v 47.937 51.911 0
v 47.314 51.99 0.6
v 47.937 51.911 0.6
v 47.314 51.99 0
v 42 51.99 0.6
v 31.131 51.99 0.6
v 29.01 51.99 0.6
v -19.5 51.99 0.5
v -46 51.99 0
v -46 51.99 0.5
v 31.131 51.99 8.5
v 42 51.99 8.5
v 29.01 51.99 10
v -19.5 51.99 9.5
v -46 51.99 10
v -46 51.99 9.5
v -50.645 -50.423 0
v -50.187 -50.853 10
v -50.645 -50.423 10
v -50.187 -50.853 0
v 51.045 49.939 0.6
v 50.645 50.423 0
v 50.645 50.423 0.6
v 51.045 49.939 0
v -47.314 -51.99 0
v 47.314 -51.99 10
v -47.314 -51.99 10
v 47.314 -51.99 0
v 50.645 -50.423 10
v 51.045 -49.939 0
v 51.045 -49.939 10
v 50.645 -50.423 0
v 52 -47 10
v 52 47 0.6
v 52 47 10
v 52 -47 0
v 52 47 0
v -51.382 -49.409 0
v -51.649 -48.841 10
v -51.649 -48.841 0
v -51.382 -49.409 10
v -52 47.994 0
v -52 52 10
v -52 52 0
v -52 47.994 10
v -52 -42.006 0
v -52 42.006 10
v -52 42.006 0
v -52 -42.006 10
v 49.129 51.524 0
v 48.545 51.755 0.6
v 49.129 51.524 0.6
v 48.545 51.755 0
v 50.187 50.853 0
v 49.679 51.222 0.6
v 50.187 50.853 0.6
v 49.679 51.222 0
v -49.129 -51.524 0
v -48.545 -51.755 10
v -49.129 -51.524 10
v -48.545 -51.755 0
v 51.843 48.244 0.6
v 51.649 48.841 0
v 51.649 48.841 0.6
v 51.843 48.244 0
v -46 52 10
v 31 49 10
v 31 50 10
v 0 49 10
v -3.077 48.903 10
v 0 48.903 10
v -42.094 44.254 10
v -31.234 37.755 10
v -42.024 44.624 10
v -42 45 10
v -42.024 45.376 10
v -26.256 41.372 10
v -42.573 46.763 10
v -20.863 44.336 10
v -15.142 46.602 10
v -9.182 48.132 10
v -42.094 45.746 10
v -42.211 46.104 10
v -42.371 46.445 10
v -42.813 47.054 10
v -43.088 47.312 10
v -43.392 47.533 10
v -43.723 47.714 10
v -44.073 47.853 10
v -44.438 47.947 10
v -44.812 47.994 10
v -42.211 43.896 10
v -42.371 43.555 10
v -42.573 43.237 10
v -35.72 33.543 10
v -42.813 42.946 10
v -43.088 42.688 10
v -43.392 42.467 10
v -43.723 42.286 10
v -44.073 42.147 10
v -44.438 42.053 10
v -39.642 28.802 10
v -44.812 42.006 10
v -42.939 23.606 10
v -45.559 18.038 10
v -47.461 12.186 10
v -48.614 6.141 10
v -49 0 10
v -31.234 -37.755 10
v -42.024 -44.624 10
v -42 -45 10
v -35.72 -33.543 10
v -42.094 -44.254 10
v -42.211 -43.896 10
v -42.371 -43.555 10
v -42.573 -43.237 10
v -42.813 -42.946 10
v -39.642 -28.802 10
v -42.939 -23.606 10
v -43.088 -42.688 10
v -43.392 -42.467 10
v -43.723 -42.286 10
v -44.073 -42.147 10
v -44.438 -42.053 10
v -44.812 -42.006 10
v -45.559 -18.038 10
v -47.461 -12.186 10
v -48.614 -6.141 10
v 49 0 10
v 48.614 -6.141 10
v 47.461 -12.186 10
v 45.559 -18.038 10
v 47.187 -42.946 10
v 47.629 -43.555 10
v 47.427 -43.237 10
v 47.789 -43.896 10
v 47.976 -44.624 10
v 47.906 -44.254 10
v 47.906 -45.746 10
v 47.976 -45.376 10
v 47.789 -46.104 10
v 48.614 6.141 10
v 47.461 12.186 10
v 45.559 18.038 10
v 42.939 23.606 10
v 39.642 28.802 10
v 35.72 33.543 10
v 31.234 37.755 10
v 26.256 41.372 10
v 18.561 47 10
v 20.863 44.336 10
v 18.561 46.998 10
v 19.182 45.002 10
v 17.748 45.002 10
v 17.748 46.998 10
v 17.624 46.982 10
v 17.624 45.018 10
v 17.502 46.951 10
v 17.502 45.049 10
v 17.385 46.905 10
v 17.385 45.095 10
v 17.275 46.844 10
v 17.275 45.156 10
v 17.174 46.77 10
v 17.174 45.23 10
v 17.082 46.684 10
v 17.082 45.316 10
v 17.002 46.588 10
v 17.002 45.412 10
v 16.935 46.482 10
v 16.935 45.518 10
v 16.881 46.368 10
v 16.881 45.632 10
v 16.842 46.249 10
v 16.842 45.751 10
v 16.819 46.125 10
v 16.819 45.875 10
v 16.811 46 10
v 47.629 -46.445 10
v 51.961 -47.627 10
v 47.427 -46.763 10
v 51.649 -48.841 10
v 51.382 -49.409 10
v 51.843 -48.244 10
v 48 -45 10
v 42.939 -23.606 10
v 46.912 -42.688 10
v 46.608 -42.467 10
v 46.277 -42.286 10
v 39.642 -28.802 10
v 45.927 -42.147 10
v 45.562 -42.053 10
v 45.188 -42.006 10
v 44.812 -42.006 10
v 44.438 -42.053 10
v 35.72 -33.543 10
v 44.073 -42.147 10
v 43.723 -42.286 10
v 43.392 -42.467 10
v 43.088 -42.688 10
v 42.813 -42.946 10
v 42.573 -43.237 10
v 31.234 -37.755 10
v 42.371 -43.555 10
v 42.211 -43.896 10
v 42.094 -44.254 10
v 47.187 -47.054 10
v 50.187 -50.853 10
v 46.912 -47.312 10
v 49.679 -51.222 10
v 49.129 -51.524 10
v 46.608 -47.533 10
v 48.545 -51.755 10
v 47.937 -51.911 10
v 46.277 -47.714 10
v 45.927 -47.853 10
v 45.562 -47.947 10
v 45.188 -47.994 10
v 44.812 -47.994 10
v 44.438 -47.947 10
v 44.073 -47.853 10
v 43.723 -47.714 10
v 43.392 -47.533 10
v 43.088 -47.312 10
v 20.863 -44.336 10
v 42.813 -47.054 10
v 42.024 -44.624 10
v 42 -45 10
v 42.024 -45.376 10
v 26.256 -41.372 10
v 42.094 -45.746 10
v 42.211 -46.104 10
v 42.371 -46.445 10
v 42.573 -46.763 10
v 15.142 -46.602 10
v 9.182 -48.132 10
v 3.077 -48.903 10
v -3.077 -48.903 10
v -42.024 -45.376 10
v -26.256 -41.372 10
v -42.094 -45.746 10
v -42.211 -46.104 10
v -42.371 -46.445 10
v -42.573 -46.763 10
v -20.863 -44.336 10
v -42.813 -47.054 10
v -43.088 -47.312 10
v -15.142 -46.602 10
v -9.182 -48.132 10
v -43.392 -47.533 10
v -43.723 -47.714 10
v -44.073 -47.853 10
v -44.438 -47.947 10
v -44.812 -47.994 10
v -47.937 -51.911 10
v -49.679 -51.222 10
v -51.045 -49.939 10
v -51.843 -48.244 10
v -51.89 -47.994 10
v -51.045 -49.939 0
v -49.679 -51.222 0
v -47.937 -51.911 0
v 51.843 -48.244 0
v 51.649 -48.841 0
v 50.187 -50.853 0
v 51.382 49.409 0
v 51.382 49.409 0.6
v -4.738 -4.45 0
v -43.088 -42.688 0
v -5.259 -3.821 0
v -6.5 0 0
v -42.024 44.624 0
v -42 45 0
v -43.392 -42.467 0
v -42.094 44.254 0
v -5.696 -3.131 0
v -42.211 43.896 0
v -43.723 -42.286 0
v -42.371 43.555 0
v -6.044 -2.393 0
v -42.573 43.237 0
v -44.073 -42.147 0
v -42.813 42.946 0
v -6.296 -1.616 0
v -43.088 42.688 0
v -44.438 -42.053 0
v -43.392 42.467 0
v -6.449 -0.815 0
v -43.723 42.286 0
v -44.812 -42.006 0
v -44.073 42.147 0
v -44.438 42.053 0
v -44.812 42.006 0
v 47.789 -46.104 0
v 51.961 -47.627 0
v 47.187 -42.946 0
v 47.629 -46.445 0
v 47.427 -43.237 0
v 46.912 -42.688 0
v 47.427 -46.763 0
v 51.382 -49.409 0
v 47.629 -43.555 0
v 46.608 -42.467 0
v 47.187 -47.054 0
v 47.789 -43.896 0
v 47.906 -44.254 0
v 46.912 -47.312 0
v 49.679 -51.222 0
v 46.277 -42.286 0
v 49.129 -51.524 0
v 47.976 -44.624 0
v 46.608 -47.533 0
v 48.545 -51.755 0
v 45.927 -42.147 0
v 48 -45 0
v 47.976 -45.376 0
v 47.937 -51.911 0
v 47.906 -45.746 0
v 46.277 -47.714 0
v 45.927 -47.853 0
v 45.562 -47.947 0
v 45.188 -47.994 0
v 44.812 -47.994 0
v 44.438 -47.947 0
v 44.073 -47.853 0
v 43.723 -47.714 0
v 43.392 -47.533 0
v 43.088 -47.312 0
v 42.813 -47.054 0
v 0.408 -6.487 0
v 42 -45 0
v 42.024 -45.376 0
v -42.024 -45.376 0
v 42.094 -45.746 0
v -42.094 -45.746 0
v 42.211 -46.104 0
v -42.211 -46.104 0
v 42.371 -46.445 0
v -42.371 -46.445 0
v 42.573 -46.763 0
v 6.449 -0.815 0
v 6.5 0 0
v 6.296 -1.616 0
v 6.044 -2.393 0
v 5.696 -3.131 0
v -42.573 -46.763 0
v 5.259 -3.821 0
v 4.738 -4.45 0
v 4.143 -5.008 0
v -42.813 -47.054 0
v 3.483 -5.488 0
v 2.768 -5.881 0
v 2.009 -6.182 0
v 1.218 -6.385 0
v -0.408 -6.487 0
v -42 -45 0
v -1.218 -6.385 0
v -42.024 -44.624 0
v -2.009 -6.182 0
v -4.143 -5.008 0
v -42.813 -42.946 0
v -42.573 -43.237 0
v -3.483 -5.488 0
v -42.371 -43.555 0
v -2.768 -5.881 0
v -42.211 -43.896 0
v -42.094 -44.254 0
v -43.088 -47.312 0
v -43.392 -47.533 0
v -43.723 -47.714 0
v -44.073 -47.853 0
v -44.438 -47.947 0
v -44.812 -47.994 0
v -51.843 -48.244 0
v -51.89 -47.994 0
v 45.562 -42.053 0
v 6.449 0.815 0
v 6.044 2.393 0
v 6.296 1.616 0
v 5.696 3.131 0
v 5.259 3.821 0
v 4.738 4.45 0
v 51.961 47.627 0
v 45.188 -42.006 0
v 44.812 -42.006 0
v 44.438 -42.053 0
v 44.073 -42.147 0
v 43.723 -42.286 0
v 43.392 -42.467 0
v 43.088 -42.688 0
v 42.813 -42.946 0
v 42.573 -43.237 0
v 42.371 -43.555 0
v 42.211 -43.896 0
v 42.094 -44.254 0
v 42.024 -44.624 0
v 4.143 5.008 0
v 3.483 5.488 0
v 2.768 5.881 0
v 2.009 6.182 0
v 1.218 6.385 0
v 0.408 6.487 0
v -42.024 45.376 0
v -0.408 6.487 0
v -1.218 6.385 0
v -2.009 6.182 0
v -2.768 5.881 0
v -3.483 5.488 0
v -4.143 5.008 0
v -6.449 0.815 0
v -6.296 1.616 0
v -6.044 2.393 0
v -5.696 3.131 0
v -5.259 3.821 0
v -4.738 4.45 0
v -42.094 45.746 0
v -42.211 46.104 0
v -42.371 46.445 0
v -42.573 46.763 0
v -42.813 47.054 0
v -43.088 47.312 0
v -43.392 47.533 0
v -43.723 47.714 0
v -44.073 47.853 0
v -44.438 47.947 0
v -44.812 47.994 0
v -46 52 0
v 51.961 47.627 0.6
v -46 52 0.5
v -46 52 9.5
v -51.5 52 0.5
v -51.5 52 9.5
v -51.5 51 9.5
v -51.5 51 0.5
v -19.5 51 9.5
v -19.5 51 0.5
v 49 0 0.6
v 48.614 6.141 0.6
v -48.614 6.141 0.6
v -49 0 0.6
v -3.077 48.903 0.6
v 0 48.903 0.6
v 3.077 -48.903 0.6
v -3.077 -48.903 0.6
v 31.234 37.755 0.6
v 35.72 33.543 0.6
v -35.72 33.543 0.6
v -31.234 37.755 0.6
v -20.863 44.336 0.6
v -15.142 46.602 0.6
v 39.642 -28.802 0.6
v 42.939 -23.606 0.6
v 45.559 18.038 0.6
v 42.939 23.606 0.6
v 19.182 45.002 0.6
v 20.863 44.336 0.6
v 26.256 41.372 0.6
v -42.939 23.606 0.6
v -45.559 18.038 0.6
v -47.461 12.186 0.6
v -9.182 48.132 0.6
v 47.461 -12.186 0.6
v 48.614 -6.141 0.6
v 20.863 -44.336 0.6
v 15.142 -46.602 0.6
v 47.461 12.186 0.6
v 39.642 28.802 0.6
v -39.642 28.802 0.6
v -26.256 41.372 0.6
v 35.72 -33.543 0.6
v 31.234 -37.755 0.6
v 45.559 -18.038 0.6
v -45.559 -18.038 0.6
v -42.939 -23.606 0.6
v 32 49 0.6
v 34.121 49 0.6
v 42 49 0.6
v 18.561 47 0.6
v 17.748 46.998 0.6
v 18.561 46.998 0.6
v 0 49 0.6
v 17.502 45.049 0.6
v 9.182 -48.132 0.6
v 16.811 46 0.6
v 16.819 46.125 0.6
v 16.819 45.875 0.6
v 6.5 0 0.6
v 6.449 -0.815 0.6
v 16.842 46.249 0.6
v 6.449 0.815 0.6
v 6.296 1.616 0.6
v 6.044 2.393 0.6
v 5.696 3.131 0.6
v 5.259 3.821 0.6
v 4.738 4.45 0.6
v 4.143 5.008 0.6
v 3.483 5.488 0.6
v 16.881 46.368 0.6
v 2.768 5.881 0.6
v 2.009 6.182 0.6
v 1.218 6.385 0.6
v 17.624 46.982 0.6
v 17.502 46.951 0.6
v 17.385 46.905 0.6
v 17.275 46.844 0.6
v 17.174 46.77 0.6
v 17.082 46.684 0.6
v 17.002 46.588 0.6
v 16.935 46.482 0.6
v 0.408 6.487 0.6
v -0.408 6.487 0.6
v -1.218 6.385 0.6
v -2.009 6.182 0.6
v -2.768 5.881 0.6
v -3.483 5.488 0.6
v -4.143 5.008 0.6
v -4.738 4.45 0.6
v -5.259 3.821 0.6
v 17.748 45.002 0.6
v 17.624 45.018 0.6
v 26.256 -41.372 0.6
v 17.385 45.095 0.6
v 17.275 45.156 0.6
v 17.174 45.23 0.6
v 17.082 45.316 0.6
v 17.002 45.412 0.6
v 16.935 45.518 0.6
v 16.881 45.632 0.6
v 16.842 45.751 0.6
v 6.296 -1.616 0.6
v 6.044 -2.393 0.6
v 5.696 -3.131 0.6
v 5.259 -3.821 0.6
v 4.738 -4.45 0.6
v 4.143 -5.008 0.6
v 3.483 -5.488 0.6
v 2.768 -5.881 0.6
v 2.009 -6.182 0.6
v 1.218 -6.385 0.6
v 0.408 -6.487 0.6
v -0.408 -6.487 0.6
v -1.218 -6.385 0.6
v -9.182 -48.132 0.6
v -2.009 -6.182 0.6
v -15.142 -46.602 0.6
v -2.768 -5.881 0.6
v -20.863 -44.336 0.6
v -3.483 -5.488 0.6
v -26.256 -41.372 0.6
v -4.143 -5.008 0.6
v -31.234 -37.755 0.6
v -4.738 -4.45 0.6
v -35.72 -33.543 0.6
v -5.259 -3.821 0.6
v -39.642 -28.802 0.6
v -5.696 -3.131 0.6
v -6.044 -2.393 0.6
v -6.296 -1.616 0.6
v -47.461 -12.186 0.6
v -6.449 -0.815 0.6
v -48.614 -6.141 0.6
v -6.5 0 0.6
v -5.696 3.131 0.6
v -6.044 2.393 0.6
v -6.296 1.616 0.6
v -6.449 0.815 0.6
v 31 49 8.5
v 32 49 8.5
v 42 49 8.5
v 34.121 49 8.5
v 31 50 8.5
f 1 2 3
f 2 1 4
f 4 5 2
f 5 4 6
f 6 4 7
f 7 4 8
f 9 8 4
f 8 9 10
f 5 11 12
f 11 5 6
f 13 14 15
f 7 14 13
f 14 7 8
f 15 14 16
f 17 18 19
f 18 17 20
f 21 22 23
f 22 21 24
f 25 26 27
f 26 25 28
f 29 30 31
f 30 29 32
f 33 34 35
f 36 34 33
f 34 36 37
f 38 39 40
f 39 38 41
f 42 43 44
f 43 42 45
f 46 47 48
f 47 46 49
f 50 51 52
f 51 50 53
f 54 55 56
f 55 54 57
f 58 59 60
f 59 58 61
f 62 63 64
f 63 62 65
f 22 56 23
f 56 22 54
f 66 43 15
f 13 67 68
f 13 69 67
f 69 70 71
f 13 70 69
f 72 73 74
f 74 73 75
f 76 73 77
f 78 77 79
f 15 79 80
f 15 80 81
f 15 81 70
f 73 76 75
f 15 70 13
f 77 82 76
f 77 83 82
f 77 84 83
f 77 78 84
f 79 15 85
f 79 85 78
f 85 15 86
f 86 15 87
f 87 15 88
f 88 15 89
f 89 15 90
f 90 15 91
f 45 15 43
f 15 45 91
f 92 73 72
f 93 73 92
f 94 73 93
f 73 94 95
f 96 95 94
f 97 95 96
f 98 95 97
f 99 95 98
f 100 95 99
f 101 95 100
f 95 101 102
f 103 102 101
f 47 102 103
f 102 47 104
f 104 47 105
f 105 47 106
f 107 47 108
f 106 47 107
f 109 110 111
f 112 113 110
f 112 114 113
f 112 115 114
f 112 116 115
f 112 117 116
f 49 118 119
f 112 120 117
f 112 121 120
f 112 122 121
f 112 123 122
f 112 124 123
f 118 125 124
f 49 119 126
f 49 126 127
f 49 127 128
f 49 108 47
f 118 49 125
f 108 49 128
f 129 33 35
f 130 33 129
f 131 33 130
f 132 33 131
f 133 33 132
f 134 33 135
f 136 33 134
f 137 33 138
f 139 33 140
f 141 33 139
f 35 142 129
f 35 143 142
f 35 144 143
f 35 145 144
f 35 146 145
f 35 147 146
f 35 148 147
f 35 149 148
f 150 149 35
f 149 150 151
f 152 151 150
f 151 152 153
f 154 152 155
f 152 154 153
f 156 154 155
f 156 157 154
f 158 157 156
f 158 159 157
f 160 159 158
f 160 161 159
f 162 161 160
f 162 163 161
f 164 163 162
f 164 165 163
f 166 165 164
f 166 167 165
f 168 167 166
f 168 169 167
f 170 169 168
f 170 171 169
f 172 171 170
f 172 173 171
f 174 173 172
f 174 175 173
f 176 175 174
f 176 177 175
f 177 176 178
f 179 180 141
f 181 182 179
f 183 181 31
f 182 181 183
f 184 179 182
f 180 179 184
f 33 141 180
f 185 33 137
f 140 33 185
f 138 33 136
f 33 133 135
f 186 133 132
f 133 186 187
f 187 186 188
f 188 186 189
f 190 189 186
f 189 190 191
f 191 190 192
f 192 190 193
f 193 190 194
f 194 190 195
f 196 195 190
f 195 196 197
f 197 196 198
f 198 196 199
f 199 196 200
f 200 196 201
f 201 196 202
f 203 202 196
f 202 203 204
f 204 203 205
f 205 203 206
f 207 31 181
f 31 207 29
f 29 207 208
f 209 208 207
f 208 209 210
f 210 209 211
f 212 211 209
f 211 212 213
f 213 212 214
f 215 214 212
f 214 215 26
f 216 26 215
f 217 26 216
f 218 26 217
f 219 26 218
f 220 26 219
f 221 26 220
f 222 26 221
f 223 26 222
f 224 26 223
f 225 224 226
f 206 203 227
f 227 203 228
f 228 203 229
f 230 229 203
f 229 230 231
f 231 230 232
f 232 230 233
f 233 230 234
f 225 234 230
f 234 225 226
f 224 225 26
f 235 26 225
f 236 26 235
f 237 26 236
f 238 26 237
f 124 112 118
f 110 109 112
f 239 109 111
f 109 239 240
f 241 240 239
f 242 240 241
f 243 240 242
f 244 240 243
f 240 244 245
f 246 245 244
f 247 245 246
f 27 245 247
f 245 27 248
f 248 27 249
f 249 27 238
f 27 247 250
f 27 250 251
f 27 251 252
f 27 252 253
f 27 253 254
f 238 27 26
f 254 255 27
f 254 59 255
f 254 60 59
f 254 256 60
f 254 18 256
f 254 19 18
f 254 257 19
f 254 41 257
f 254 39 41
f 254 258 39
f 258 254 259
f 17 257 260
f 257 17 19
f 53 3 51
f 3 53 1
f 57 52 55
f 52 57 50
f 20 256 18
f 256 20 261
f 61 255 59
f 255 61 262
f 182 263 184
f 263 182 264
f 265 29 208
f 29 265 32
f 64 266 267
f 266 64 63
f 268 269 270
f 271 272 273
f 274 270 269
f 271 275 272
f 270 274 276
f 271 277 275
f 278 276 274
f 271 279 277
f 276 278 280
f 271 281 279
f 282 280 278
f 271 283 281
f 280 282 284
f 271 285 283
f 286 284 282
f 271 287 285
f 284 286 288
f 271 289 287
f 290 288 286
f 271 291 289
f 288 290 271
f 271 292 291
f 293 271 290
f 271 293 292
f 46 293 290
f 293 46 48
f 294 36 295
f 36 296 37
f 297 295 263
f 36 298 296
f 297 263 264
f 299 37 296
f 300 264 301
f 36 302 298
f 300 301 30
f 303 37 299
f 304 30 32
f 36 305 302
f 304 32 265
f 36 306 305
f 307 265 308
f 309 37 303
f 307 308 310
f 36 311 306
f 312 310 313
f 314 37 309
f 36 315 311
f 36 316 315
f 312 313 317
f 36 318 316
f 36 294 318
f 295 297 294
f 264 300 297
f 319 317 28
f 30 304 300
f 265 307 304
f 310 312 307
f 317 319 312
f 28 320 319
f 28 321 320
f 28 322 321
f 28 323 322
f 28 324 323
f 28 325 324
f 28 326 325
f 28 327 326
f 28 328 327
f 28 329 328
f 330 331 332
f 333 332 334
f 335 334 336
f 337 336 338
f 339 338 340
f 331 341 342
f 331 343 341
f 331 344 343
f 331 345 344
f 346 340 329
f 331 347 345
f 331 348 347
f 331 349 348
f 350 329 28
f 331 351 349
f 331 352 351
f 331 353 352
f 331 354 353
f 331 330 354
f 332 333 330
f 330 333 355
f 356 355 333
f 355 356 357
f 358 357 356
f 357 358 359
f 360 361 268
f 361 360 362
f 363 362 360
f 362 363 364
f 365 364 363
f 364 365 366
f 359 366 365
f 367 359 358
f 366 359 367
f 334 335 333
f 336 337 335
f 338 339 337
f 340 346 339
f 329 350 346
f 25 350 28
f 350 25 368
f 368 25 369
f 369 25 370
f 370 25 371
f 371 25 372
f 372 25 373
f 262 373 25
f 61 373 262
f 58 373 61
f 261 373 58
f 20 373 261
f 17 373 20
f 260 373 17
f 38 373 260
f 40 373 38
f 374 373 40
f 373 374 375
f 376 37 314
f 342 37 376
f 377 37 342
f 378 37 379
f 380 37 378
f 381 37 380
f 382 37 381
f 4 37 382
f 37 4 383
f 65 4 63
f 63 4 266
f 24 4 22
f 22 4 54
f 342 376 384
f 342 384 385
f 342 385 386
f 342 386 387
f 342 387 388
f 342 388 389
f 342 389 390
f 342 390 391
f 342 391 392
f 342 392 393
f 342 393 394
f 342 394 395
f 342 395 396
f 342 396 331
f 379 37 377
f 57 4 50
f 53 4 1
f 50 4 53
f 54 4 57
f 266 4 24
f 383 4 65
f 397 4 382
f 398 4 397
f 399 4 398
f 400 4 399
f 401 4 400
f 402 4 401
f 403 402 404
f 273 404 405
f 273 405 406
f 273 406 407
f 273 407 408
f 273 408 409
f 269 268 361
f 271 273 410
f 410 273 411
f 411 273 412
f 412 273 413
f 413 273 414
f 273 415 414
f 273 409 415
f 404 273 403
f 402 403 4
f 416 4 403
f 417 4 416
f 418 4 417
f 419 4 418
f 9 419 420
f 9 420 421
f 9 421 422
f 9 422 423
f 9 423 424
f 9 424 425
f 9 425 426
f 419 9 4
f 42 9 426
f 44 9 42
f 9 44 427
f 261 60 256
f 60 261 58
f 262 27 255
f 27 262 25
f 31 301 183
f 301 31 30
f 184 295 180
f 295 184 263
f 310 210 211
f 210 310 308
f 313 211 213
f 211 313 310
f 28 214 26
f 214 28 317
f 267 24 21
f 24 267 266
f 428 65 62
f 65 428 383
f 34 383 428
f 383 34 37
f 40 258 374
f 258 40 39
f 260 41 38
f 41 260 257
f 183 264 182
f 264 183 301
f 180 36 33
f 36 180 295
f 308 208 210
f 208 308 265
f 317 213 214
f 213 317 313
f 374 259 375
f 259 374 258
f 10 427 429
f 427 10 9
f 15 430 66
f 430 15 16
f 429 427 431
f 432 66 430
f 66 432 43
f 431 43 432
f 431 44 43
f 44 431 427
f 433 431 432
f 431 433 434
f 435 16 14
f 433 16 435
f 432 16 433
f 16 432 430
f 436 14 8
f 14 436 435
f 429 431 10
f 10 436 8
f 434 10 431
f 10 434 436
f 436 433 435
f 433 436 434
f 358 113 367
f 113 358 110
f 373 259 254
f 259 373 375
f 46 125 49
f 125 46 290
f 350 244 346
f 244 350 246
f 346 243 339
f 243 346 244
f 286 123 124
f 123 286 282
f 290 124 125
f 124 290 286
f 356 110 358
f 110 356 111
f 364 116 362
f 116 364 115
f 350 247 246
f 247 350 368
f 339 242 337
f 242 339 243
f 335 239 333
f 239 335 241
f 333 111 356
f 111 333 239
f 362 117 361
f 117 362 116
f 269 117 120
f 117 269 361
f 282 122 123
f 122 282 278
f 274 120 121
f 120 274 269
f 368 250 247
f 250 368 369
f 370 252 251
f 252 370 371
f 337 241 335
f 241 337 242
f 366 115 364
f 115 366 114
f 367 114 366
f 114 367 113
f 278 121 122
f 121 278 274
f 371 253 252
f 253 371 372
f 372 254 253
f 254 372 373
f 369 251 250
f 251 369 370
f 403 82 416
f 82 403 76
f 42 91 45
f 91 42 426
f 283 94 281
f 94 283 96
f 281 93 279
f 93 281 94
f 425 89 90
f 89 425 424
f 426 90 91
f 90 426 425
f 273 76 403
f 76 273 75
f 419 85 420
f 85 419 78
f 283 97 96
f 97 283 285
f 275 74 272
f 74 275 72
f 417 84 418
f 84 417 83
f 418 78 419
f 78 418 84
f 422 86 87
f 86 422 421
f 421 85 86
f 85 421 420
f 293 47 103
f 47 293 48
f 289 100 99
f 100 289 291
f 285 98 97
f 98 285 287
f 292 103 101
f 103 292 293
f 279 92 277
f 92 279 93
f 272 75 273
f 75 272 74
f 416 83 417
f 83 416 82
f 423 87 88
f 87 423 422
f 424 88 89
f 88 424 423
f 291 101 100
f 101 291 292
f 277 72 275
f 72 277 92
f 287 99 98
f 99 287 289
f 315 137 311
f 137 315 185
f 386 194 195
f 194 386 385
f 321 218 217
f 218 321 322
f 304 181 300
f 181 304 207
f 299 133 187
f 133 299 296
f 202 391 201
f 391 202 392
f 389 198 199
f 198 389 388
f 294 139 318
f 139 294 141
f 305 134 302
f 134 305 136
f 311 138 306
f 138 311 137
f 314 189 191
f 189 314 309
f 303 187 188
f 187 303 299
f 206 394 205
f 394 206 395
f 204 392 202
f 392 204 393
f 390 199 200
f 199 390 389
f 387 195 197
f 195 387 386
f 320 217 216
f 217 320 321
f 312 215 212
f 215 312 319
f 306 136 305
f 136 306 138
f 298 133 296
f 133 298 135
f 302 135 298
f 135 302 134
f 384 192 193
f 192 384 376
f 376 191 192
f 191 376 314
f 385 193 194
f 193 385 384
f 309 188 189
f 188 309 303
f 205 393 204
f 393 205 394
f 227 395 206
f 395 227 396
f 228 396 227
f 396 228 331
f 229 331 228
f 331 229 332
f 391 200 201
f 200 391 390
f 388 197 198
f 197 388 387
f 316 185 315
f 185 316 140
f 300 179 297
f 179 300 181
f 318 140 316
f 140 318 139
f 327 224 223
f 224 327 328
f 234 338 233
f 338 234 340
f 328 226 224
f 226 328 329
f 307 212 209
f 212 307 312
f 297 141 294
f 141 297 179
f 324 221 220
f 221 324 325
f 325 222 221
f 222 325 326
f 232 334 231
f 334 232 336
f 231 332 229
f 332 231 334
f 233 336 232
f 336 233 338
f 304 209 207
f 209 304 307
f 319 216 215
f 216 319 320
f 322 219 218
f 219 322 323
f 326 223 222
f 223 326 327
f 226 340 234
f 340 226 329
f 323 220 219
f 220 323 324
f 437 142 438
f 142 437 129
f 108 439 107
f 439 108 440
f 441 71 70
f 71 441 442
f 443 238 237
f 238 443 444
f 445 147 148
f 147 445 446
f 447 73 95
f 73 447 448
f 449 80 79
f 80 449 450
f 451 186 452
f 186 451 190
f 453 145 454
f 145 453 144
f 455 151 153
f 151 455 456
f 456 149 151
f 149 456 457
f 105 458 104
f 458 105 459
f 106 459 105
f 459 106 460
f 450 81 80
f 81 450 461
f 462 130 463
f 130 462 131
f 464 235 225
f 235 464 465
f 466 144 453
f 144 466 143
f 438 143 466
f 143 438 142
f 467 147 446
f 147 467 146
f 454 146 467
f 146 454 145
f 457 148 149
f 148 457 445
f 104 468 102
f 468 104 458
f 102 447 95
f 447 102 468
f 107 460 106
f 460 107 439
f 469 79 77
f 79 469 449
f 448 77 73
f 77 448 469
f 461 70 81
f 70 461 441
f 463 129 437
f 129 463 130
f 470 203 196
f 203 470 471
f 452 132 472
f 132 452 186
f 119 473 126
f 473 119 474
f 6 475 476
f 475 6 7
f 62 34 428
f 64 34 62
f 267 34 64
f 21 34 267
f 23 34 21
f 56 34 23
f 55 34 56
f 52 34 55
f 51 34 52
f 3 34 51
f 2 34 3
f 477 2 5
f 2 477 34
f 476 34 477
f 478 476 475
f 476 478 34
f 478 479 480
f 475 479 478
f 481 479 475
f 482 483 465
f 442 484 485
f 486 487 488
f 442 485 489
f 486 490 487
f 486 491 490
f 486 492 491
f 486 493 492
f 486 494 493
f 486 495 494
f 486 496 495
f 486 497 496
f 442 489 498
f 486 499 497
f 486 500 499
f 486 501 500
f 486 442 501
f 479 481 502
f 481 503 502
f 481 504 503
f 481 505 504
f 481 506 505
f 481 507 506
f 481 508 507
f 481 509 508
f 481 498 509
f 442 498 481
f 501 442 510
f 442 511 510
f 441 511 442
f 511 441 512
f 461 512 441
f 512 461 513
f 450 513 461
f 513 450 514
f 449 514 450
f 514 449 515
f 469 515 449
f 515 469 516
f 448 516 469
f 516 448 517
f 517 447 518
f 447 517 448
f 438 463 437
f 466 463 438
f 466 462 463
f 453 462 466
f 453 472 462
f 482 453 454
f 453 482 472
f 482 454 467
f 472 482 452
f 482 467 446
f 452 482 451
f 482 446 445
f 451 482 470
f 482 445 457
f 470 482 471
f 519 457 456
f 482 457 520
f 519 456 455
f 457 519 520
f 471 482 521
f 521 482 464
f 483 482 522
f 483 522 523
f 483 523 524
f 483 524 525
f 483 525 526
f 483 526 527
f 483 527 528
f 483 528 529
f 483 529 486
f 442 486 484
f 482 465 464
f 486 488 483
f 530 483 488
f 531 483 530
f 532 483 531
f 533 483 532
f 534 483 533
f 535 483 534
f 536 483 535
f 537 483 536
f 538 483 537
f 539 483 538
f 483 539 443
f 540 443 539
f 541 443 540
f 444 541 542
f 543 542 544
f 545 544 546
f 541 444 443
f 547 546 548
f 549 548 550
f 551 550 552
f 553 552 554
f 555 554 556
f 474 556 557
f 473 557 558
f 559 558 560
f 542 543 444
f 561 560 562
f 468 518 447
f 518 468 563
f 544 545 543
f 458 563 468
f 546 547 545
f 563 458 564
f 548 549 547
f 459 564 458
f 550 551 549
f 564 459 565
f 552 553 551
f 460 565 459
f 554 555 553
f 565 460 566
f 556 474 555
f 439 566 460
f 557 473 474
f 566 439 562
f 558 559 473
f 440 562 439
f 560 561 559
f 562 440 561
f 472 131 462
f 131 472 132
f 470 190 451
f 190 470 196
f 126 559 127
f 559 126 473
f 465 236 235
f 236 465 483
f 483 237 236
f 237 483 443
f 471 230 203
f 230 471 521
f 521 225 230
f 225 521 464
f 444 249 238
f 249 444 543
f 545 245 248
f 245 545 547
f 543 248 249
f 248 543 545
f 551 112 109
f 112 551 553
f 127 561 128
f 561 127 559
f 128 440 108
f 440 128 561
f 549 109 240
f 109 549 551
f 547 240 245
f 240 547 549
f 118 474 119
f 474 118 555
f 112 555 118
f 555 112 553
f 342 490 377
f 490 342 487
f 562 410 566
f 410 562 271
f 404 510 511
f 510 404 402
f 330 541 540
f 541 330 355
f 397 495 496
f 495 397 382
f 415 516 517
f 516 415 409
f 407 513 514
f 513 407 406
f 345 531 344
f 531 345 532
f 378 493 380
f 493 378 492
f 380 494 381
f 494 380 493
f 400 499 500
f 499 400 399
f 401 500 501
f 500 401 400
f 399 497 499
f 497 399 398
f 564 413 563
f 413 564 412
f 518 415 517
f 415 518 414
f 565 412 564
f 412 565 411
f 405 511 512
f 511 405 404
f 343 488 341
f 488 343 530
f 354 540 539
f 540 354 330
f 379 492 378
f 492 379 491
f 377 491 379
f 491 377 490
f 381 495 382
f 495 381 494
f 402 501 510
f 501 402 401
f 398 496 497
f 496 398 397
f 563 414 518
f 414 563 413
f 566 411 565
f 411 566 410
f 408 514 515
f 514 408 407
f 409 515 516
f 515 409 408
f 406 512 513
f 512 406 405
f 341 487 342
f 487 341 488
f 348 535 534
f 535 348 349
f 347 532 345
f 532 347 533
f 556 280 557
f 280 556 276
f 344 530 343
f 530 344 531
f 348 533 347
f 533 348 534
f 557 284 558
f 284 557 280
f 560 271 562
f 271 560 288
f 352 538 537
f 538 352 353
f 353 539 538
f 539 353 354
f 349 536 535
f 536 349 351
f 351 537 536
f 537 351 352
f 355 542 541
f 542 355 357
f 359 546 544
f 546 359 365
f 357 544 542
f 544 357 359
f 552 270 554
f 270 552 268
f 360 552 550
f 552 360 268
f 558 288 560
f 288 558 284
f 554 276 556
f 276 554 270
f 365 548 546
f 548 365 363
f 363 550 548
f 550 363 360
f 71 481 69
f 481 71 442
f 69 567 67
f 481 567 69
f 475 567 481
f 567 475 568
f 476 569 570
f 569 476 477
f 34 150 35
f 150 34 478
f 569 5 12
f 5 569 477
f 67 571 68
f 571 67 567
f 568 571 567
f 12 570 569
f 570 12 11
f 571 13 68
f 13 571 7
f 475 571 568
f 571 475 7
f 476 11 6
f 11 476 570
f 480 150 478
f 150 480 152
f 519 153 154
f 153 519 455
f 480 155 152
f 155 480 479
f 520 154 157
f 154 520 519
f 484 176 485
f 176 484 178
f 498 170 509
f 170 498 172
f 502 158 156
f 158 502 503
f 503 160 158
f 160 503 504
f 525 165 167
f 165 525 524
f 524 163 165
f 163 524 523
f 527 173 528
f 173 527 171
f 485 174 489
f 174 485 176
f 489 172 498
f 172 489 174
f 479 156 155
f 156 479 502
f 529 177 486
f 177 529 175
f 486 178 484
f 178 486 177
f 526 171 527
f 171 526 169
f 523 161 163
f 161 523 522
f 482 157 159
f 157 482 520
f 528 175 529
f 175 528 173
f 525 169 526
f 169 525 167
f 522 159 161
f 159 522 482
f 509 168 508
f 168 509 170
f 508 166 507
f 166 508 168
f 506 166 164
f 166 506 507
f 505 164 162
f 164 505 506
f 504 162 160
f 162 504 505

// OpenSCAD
$fn = 50;


union() {
	difference() {
		union() {
			translate(v = [0, 0, 0]) {
				rotate(a = [0, 0, 0]) {
					hull() {
						translate(v = [-47.0000000000, 47.0000000000, 0]) {
							rotate(a = [0, 0, 0]) {
								translate(v = [0, 0, 0]) {
									rotate(a = [0, 0, 0]) {
										cylinder(h = 10, r = 5);
									}
								}
							}
						}
						translate(v = [47.0000000000, 47.0000000000, 0]) {
							rotate(a = [0, 0, 0]) {
								translate(v = [0, 0, 0]) {
									rotate(a = [0, 0, 0]) {
										cylinder(h = 10, r = 5);
									}
								}
							}
						}
						translate(v = [-47.0000000000, -47.0000000000, 0]) {
							rotate(a = [0, 0, 0]) {
								translate(v = [0, 0, 0]) {
									rotate(a = [0, 0, 0]) {
										cylinder(h = 10, r = 5);
									}
								}
							}
						}
						translate(v = [47.0000000000, -47.0000000000, 0]) {
							rotate(a = [0, 0, 0]) {
								translate(v = [0, 0, 0]) {
									rotate(a = [0, 0, 0]) {
										cylinder(h = 10, r = 5);
									}
								}
							}
						}
					}
				}
			}
			translate(v = [-52.0000000000, 46.0000000000, 0]) {
				rotate(a = [0, 0, 0]) {
					cube(size = [6, 6, 10]);
				}
			}
		}
		union() {
			#translate(v = [-51.5000000000, 51.0000000000, 0.5000000000]) {
				rotate(a = [0, 0, 0]) {
					cube(size = [32, 1, 9.0000000000]);
				}
			}
			translate(v = [-52.5000000000, -45.0000000000, -125]) {
				rotate(a = [0, 0, 0]) {
					hull() {
						translate(v = [7.5000000000, 0, 0]) {
							rotate(a = [0, 0, 0]) {
								translate(v = [0, 0, 0]) {
									rotate(a = [0, 0, 0]) {
										cylinder(h = 250, r = 3.0000000000);
									}
								}
							}
						}
						translate(v = [-7.5000000000, 0, 0]) {
							rotate(a = [0, 0, 0]) {
								translate(v = [0, 0, 0]) {
									rotate(a = [0, 0, 0]) {
										cylinder(h = 250, r = 3.0000000000);
									}
								}
							}
						}
					}
				}
			}
			translate(v = [-52.5000000000, 45.0000000000, -125]) {
				rotate(a = [0, 0, 0]) {
					hull() {
						translate(v = [7.5000000000, 0, 0]) {
							rotate(a = [0, 0, 0]) {
								translate(v = [0, 0, 0]) {
									rotate(a = [0, 0, 0]) {
										cylinder(h = 250, r = 3.0000000000);
									}
								}
							}
						}
						translate(v = [-7.5000000000, 0, 0]) {
							rotate(a = [0, 0, 0]) {
								translate(v = [0, 0, 0]) {
									rotate(a = [0, 0, 0]) {
										cylinder(h = 250, r = 3.0000000000);
									}
								}
							}
						}
					}
				}
			}
			translate(v = [45.0000000000, -45.0000000000, -125.0000000000]) {
				rotate(a = [0, 0, 0]) {
					cylinder(h = 250, r = 3.0000000000);
				}
			}
			translate(v = [0, 0, 0.6000000000]) {
				rotate(a = [0, 0, 0]) {
					cylinder(h = 12.4000000000, r = 49.0000000000);
				}
			}
			translate(v = [0, 0, -5.0000000000]) {
				rotate(a = [0, 0, 0]) {
					cylinder(h = 10, r = 6.5000000000);
				}
			}
			translate(v = [0.0000000000, 47.0000000000, 0.6000000000]) {
				rotate(a = [0, 0, 0]) {
					cube(size = [52.0000000000, 2, 12.4000000000]);
				}
			}
			translate(v = [42.0000000000, 47.0000000000, 0.6000000000]) {
				rotate(a = [0, 0, 0]) {
					cube(size = [10, 5, 12.4000000000]);
				}
			}
			translate(v = [31.0000000000, 47.0000000000, 8.5000000000]) {
				rotate(a = [0, 0, 0]) {
					cube(size = [21, 5, 1.5000000000]);
				}
			}
			translate(v = [28.2500000000, 52.7500000000, 0.6000000000]) {
				rotate(a = [0, 0, -45]) {
					cube(size = [7.5000000000, 1.5000000000, 12.4000000000]);
				}
			}
			translate(v = [11.0610000000, 45.0000000000, 0.6000000000]) {
				rotate(a = [0, 0, 0]) {
					cube(size = [7.5000000000, 2, 9.4000000000]);
				}
			}
		}
	}
	union() {
		translate(v = [20.3110000000, 46.0000000000, 0]) {
			rotate(a = [0, 0, 0]) {
				hull() {
					translate(v = [2.5000000000, 0, 0]) {
						rotate(a = [0, 0, 0]) {
							#translate(v = [0, 0, 0]) {
								rotate(a = [0, 0, 0]) {
									cylinder(h = 10, r = 1.0000000000);
								}
							}
						}
					}
					translate(v = [-2.5000000000, 0, 0]) {
						rotate(a = [0, 0, 0]) {
							#translate(v = [0, 0, 0]) {
								rotate(a = [0, 0, 0]) {
									cylinder(h = 10, r = 1.0000000000);
								}
							}
						}
					}
				}
			}
		}
	}
}
